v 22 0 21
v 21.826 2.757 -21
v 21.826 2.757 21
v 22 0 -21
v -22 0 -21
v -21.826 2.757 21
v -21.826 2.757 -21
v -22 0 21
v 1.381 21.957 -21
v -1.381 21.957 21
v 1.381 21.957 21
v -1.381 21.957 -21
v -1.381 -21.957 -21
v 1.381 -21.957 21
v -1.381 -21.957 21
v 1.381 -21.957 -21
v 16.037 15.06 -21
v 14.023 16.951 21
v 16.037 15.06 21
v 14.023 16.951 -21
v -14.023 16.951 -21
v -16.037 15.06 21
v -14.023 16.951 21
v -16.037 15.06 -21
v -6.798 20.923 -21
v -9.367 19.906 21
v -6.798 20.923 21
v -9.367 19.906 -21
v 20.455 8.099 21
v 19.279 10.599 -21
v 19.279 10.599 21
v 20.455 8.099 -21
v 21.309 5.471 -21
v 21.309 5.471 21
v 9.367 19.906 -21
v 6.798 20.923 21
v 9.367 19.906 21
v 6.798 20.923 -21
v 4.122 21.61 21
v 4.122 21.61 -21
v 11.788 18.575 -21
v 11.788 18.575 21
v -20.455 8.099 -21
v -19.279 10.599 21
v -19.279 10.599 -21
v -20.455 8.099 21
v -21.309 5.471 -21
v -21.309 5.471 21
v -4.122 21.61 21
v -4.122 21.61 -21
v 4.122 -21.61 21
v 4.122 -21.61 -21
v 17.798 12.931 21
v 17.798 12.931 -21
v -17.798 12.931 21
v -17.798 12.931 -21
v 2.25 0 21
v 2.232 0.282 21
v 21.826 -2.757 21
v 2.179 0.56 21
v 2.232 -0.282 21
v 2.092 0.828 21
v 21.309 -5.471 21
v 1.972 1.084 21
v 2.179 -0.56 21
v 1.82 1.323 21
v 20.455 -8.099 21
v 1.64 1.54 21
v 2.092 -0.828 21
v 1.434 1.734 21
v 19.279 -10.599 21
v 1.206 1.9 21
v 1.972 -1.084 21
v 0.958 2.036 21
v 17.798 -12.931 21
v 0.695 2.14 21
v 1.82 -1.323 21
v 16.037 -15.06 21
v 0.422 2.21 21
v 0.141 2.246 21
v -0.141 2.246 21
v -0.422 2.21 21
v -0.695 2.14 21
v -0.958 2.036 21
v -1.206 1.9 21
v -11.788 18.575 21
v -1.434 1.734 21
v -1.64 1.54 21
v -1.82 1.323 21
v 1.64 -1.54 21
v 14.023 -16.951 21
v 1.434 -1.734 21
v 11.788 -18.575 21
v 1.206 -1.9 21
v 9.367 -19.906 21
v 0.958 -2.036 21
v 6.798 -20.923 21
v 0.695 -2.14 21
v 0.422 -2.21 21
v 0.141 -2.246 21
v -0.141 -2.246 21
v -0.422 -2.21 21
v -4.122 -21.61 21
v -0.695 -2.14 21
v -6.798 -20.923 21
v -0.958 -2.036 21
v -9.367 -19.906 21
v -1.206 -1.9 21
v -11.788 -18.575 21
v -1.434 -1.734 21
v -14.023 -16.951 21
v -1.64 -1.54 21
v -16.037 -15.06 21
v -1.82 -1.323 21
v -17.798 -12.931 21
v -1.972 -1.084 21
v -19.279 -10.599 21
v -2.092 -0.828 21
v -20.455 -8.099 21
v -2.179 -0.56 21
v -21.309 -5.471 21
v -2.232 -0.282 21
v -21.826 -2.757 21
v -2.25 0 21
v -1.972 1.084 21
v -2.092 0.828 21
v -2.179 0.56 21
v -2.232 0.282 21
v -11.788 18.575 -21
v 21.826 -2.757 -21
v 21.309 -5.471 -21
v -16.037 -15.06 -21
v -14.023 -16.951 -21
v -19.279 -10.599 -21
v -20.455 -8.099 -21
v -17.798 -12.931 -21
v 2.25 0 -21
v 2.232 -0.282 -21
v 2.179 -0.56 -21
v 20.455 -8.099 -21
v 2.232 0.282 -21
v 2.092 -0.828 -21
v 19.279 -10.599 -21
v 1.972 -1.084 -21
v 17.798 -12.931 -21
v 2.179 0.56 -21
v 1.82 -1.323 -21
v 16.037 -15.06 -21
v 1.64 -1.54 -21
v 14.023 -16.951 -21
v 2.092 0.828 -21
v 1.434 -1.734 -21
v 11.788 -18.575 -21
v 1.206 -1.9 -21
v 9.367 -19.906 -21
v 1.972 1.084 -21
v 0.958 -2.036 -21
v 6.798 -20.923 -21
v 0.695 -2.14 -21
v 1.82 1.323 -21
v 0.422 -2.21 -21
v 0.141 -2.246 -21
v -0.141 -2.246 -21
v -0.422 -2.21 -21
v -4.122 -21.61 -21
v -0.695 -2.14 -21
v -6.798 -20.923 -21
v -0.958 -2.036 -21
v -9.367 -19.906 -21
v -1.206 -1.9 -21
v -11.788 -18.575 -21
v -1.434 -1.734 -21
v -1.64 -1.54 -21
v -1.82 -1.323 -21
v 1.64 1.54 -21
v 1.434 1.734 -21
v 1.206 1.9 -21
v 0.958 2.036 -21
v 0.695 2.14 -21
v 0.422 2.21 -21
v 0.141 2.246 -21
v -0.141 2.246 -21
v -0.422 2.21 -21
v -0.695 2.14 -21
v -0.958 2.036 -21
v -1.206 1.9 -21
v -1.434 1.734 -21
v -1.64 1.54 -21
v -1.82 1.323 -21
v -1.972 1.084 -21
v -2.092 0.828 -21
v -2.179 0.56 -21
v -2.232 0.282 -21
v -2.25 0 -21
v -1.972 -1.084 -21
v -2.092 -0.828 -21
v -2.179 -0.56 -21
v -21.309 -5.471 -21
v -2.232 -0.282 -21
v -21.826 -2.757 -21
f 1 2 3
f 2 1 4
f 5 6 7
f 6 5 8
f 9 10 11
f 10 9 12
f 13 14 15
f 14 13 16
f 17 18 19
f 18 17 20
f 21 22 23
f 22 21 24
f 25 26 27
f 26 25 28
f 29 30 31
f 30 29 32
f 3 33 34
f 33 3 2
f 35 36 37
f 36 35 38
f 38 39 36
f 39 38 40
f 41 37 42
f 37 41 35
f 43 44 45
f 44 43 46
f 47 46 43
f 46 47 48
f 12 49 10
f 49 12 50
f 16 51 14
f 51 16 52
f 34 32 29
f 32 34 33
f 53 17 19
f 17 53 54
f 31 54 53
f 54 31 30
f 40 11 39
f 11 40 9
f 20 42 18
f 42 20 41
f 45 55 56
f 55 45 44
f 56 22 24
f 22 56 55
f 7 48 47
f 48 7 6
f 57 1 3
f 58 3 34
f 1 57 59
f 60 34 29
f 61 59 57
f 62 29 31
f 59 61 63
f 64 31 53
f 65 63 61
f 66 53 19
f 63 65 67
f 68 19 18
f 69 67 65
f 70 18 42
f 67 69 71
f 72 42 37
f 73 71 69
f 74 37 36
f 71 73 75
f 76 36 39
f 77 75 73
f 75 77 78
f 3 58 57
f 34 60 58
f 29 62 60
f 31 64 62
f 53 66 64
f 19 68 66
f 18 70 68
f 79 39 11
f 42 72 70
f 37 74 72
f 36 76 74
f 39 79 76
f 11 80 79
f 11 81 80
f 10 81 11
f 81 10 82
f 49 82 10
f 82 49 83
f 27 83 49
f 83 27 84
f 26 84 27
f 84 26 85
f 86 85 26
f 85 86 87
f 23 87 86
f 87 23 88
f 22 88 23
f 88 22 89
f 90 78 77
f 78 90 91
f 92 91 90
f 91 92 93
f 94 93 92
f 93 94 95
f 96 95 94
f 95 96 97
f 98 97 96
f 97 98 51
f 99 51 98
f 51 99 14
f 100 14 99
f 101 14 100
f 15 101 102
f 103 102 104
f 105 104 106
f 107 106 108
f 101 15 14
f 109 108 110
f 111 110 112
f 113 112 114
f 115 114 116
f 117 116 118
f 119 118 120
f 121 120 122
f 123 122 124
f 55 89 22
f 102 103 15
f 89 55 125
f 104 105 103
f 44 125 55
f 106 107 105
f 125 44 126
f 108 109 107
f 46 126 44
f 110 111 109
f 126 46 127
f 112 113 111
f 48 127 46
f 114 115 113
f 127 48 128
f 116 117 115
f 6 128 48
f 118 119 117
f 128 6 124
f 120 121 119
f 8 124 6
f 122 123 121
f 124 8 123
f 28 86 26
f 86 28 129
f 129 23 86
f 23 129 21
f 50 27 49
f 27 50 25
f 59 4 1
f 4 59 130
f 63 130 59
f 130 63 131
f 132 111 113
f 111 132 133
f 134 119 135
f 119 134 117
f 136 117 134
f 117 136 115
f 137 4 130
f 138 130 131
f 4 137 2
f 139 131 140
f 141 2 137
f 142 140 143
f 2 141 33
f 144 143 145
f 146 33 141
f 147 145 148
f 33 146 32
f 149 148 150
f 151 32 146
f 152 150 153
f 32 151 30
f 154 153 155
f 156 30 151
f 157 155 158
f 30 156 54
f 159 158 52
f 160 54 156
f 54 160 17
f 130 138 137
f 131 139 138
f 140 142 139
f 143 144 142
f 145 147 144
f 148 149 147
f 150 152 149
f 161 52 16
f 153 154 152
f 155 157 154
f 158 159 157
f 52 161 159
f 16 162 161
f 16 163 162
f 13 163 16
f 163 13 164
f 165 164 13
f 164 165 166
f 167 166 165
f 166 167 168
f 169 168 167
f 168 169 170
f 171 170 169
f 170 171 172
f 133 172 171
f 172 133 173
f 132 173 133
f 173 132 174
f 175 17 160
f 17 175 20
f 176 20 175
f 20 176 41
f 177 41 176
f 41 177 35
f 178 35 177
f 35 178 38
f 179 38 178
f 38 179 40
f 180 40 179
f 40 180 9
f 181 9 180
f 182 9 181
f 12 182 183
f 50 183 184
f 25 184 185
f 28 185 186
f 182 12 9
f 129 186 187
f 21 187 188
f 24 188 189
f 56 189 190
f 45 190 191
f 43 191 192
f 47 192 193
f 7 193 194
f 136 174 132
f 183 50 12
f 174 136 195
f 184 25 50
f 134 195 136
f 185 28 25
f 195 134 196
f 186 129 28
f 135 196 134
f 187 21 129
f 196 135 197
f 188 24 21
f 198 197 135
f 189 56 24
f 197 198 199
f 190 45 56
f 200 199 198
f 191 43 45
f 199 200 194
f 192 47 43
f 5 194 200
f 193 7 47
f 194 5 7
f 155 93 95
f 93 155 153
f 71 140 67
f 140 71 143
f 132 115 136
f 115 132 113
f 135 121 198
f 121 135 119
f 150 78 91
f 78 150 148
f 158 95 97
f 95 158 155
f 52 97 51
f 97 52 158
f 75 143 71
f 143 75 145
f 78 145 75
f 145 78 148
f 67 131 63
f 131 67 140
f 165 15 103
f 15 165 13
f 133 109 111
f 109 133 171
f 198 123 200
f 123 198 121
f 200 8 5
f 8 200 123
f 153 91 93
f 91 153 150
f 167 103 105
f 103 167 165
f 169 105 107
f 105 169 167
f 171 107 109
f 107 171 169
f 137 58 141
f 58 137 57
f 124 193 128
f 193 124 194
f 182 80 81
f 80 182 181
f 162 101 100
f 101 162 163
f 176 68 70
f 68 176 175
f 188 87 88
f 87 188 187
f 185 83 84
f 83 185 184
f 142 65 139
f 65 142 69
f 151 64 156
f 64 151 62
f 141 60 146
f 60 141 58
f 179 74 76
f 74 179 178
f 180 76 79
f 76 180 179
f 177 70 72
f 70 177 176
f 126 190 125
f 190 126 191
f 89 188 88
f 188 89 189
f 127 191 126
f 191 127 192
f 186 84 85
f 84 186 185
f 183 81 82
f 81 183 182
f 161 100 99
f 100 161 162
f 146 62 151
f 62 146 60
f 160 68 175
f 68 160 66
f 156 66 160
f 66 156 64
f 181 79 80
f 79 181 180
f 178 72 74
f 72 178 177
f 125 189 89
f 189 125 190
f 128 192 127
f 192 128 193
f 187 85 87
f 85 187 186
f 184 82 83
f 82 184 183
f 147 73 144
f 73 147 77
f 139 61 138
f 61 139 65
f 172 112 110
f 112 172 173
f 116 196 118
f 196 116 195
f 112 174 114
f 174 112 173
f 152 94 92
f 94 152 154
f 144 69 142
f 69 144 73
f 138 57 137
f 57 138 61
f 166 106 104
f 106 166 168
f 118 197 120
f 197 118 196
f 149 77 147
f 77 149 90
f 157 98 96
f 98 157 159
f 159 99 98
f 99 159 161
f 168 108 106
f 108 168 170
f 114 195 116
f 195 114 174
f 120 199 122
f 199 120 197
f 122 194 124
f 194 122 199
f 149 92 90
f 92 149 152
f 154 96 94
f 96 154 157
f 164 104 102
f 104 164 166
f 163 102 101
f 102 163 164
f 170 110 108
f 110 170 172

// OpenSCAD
$fn = 50;


difference() {
	union() {
		translate(v = [0, 0, -21.0000000000]) {
			cylinder(h = 42, r = 22.0000000000);
		}
	}
	union() {
		translate(v = [0, 0, -100.0000000000]) {
			cylinder(h = 200, r = 2.2500000000);
		}
	}
}
